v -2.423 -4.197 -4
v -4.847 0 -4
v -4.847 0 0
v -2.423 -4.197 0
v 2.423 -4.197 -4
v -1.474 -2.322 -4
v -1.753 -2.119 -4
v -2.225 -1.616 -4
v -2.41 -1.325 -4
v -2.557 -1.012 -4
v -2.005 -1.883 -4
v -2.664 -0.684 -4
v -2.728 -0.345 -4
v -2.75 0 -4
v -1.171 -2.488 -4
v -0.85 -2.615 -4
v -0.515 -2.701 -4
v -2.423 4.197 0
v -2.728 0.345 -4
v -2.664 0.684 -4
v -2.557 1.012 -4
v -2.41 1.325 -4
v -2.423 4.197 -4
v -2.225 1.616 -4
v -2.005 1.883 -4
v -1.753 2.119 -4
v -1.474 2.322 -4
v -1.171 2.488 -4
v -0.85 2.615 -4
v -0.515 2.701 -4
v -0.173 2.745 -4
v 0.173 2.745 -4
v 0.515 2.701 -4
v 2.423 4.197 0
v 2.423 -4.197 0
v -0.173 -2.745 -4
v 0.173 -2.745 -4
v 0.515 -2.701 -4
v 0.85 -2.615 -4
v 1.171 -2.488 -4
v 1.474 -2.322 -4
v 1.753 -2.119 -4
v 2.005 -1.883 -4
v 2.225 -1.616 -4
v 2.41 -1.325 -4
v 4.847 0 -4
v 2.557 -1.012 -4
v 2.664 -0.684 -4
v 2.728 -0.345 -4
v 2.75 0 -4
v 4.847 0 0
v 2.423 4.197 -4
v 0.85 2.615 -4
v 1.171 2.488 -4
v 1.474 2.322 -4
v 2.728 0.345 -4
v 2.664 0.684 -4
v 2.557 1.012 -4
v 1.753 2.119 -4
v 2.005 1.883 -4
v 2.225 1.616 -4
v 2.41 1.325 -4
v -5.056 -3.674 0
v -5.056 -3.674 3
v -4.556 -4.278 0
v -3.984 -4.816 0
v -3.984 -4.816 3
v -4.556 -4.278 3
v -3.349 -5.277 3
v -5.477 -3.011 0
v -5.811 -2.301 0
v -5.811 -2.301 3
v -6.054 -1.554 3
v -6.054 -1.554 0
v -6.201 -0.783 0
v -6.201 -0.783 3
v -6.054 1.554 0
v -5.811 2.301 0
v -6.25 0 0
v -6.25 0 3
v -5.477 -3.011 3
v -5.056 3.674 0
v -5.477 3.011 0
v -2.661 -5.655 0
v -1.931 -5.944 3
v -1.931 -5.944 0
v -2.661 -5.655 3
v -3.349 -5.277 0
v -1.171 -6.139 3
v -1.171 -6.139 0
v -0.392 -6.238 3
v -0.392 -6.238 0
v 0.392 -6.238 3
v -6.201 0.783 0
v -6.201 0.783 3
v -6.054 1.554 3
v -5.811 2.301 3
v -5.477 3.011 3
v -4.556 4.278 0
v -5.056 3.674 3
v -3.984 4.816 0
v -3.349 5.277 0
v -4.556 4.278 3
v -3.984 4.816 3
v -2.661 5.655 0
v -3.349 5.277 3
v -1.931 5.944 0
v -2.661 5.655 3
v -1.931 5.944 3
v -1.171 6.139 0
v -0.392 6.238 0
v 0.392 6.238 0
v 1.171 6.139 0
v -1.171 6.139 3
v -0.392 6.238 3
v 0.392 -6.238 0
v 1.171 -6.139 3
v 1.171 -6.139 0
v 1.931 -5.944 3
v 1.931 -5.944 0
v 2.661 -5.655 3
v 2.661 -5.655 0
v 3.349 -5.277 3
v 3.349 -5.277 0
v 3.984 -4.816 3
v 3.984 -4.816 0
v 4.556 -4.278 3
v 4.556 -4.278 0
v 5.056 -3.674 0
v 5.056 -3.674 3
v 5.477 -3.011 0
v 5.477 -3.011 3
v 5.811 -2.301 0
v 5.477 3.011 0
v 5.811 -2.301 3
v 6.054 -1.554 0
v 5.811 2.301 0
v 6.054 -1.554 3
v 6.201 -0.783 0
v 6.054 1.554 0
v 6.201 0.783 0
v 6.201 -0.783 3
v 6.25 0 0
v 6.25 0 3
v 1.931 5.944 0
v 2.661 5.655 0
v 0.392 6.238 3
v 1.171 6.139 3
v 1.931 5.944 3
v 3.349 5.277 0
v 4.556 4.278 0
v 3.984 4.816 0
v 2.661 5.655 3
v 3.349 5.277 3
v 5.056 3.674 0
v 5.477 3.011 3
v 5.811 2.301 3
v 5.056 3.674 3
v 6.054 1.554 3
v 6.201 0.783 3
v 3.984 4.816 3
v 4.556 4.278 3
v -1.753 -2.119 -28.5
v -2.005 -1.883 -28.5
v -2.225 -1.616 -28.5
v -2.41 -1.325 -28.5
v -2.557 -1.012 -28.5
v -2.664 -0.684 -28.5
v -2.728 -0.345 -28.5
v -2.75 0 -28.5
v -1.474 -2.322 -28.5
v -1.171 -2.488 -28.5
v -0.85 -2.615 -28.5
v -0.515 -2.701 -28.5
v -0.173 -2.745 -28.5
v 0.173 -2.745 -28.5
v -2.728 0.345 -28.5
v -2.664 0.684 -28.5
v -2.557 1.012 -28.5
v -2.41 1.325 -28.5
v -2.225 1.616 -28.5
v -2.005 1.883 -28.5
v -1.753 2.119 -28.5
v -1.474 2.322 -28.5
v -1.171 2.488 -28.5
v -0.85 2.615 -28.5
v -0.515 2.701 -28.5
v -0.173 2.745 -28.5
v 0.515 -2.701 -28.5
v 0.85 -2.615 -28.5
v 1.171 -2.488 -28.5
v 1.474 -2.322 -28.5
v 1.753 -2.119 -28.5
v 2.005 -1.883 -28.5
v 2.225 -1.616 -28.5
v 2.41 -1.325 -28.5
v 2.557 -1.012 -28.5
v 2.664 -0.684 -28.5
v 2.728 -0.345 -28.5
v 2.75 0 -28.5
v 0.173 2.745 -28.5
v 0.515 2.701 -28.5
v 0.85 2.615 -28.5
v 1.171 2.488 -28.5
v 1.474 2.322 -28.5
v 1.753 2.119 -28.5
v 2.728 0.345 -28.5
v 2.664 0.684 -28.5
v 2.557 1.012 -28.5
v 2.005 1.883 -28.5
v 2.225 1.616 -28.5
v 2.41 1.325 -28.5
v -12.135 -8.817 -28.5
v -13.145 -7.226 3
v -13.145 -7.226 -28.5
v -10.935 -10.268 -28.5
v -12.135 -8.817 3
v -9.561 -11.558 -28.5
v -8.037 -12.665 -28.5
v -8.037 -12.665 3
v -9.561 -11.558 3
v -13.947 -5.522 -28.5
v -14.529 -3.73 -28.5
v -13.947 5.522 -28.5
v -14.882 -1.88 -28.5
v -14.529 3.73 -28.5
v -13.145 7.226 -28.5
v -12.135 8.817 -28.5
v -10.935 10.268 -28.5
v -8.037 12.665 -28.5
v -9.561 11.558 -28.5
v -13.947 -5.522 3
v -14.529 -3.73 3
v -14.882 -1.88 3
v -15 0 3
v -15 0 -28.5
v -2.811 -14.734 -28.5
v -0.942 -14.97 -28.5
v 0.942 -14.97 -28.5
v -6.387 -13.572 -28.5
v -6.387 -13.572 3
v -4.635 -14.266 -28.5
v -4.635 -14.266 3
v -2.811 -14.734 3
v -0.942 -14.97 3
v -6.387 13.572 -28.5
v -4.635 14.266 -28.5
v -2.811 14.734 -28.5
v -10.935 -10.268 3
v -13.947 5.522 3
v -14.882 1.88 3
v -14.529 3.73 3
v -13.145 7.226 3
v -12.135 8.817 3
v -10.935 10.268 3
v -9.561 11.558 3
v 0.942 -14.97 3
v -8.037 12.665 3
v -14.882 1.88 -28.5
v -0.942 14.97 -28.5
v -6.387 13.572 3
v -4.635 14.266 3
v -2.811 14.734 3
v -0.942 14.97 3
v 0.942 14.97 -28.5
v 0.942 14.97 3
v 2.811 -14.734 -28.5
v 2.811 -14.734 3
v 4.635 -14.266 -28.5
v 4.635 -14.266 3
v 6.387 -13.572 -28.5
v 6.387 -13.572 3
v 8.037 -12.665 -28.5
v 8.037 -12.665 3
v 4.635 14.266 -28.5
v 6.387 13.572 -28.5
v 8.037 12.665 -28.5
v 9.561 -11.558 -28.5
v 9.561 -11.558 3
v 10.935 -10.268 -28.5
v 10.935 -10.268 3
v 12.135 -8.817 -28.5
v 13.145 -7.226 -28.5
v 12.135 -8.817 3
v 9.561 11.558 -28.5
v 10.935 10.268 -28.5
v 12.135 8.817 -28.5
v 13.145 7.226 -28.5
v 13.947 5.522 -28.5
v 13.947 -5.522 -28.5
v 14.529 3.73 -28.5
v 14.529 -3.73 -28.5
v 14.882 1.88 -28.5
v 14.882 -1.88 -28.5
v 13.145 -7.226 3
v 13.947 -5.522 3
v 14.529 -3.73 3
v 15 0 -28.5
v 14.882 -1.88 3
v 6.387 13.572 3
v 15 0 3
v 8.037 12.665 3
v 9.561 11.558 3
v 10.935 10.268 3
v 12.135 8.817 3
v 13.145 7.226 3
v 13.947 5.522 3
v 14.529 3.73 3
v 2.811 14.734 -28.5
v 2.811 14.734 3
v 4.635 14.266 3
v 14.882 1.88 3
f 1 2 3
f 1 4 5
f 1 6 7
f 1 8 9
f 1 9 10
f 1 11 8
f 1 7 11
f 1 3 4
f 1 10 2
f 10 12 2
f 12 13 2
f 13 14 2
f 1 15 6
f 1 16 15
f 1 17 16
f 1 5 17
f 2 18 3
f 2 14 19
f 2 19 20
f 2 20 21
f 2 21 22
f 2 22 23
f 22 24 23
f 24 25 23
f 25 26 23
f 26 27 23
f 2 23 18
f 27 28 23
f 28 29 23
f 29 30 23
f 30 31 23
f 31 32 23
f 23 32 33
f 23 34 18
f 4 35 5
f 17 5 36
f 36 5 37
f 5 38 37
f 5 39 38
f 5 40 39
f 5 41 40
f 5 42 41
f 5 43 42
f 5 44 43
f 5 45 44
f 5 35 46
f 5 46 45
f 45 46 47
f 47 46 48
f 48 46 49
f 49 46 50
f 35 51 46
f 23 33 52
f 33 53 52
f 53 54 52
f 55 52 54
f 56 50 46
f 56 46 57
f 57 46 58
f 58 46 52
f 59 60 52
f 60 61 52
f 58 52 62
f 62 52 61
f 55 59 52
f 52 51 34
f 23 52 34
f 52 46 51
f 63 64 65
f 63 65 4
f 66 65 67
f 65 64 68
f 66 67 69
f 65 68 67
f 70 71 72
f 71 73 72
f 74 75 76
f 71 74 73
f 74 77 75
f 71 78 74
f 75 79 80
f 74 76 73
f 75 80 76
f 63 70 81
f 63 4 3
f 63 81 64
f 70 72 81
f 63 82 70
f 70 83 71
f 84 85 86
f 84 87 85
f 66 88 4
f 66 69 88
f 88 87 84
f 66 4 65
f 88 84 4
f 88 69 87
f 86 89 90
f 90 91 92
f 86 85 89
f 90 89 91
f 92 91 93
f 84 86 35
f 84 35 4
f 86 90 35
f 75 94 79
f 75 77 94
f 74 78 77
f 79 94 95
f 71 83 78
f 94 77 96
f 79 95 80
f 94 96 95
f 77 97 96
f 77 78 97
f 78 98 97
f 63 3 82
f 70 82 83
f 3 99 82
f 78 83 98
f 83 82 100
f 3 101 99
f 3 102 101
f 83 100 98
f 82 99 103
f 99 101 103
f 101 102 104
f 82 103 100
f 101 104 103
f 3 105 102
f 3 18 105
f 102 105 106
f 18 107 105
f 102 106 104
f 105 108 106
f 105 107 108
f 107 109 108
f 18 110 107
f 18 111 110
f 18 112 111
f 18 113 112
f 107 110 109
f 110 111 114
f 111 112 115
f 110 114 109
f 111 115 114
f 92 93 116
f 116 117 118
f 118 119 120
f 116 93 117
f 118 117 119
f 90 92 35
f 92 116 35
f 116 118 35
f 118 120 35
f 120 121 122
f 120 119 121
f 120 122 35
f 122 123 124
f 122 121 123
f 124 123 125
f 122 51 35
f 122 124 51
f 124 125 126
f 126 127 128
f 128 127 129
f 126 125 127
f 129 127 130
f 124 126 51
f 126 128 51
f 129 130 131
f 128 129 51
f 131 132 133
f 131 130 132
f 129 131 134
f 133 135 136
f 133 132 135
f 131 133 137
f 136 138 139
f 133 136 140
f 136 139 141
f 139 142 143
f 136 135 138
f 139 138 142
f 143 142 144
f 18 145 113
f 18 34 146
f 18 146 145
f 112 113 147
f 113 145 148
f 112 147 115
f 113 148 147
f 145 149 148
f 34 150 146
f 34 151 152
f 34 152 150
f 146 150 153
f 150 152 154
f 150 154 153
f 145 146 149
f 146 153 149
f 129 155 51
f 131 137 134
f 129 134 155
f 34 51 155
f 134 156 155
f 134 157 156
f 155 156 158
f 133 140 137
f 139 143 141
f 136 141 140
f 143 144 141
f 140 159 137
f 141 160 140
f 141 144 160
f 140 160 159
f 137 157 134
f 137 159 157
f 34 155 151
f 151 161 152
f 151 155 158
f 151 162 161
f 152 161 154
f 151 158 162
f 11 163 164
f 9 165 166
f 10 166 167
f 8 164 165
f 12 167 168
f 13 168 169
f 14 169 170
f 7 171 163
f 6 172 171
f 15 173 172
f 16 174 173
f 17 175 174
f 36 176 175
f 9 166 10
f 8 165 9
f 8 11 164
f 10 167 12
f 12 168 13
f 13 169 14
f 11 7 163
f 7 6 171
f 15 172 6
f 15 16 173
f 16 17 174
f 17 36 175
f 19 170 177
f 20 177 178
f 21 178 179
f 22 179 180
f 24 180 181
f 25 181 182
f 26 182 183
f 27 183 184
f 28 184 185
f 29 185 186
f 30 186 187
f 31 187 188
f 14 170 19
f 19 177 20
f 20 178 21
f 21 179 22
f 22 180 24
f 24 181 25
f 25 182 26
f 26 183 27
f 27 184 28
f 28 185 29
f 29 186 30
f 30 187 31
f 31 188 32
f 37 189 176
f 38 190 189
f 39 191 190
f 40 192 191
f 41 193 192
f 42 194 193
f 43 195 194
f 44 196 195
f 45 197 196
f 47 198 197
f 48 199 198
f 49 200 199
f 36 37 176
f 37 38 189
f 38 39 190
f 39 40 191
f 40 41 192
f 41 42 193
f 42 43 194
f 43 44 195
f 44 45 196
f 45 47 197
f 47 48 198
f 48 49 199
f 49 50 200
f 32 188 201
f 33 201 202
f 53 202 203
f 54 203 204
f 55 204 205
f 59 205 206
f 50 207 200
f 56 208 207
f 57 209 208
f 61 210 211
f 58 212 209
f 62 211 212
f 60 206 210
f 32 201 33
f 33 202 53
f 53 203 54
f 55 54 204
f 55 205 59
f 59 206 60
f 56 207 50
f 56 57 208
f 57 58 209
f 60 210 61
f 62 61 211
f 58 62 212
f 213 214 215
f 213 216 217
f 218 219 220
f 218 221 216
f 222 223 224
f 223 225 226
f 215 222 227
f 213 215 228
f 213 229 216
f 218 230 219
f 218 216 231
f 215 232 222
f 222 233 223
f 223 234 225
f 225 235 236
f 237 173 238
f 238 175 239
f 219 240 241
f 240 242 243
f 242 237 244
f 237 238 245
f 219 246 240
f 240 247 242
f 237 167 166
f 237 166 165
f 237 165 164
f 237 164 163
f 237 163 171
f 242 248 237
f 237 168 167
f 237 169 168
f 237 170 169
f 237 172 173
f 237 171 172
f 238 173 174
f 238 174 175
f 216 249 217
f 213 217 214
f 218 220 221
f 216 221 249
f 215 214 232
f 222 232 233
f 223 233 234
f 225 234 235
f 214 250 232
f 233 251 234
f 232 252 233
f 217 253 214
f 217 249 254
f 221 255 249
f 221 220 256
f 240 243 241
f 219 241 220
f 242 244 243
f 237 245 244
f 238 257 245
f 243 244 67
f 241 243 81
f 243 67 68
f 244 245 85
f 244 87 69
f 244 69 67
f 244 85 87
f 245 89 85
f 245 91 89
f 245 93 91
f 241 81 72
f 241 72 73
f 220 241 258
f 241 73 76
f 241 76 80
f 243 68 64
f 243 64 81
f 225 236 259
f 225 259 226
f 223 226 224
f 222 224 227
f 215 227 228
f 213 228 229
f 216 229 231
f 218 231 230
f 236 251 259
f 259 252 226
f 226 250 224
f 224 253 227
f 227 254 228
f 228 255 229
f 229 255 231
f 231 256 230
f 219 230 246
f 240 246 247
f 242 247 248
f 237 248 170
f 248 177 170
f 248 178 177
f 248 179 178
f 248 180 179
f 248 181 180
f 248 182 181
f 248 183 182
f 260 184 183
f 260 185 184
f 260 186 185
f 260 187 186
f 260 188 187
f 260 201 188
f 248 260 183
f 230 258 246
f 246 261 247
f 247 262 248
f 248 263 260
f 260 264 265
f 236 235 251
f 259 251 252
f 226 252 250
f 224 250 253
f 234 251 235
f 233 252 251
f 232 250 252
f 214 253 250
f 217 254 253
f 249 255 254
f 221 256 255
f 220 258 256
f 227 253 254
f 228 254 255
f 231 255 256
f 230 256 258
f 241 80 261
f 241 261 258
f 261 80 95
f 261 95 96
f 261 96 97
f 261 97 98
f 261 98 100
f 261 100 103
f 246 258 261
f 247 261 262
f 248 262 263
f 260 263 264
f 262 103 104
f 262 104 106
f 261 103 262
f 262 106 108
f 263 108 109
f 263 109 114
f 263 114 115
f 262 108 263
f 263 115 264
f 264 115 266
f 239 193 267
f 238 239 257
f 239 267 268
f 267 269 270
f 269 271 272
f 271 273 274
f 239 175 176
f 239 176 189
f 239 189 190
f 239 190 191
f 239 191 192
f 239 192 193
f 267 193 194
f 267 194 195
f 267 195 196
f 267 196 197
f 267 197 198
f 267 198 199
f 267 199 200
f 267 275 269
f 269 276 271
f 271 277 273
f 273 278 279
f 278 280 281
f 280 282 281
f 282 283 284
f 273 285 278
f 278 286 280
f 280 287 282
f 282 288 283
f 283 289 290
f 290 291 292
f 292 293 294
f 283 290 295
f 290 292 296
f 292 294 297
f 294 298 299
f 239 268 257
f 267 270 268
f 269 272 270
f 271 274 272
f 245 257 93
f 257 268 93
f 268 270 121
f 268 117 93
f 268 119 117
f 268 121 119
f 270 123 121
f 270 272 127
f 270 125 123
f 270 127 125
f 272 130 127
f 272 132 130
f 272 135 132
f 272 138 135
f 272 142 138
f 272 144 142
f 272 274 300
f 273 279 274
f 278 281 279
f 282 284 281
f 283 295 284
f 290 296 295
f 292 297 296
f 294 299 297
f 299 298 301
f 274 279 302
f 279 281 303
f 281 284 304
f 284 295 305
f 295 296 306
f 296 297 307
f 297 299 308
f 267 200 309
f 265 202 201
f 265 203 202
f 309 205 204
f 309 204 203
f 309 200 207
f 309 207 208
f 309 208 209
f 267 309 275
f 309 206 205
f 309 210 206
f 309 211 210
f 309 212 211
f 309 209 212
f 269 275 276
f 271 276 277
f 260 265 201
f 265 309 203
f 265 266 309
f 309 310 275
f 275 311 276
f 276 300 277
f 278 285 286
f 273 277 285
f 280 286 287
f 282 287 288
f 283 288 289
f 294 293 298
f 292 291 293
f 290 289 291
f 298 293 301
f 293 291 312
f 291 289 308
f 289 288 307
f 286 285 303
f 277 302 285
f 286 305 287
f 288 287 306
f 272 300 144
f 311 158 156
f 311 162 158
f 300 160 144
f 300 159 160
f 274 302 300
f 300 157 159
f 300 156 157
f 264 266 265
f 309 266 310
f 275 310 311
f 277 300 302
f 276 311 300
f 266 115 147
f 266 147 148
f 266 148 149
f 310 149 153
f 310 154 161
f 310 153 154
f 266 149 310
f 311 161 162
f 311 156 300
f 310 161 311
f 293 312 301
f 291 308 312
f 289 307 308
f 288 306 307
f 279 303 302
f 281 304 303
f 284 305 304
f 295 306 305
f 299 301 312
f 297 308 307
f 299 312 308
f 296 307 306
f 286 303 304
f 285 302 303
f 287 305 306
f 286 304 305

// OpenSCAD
$fn = 50;


difference() {
	union() {
		translate(v = [0, 0, -28.5000000000]) {
			cylinder(h = 31.5000000000, r = 15.0000000000);
		}
	}
	union() {
		translate(v = [0, 0, 0]) {
			rotate(a = [0, 0, 0]) {
				difference() {
					union() {
						translate(v = [0, 0, -4]) {
							linear_extrude(height = 4) {
								polygon(points = [[4.8468000000, 0.0000000000], [2.4234000000, 4.1974519271], [-2.4234000000, 4.1974519271], [-4.8468000000, 0.0000000000], [-2.4234000000, -4.1974519271], [2.4234000000, -4.1974519271]]);
							}
						}
					}
					union();
				}
			}
		}
		#cylinder(h = 3, r = 6.2500000000);
		#translate(v = [0, 0, -100.0000000000]) {
			cylinder(h = 200, r = 2.7500000000);
		}
	}
}
